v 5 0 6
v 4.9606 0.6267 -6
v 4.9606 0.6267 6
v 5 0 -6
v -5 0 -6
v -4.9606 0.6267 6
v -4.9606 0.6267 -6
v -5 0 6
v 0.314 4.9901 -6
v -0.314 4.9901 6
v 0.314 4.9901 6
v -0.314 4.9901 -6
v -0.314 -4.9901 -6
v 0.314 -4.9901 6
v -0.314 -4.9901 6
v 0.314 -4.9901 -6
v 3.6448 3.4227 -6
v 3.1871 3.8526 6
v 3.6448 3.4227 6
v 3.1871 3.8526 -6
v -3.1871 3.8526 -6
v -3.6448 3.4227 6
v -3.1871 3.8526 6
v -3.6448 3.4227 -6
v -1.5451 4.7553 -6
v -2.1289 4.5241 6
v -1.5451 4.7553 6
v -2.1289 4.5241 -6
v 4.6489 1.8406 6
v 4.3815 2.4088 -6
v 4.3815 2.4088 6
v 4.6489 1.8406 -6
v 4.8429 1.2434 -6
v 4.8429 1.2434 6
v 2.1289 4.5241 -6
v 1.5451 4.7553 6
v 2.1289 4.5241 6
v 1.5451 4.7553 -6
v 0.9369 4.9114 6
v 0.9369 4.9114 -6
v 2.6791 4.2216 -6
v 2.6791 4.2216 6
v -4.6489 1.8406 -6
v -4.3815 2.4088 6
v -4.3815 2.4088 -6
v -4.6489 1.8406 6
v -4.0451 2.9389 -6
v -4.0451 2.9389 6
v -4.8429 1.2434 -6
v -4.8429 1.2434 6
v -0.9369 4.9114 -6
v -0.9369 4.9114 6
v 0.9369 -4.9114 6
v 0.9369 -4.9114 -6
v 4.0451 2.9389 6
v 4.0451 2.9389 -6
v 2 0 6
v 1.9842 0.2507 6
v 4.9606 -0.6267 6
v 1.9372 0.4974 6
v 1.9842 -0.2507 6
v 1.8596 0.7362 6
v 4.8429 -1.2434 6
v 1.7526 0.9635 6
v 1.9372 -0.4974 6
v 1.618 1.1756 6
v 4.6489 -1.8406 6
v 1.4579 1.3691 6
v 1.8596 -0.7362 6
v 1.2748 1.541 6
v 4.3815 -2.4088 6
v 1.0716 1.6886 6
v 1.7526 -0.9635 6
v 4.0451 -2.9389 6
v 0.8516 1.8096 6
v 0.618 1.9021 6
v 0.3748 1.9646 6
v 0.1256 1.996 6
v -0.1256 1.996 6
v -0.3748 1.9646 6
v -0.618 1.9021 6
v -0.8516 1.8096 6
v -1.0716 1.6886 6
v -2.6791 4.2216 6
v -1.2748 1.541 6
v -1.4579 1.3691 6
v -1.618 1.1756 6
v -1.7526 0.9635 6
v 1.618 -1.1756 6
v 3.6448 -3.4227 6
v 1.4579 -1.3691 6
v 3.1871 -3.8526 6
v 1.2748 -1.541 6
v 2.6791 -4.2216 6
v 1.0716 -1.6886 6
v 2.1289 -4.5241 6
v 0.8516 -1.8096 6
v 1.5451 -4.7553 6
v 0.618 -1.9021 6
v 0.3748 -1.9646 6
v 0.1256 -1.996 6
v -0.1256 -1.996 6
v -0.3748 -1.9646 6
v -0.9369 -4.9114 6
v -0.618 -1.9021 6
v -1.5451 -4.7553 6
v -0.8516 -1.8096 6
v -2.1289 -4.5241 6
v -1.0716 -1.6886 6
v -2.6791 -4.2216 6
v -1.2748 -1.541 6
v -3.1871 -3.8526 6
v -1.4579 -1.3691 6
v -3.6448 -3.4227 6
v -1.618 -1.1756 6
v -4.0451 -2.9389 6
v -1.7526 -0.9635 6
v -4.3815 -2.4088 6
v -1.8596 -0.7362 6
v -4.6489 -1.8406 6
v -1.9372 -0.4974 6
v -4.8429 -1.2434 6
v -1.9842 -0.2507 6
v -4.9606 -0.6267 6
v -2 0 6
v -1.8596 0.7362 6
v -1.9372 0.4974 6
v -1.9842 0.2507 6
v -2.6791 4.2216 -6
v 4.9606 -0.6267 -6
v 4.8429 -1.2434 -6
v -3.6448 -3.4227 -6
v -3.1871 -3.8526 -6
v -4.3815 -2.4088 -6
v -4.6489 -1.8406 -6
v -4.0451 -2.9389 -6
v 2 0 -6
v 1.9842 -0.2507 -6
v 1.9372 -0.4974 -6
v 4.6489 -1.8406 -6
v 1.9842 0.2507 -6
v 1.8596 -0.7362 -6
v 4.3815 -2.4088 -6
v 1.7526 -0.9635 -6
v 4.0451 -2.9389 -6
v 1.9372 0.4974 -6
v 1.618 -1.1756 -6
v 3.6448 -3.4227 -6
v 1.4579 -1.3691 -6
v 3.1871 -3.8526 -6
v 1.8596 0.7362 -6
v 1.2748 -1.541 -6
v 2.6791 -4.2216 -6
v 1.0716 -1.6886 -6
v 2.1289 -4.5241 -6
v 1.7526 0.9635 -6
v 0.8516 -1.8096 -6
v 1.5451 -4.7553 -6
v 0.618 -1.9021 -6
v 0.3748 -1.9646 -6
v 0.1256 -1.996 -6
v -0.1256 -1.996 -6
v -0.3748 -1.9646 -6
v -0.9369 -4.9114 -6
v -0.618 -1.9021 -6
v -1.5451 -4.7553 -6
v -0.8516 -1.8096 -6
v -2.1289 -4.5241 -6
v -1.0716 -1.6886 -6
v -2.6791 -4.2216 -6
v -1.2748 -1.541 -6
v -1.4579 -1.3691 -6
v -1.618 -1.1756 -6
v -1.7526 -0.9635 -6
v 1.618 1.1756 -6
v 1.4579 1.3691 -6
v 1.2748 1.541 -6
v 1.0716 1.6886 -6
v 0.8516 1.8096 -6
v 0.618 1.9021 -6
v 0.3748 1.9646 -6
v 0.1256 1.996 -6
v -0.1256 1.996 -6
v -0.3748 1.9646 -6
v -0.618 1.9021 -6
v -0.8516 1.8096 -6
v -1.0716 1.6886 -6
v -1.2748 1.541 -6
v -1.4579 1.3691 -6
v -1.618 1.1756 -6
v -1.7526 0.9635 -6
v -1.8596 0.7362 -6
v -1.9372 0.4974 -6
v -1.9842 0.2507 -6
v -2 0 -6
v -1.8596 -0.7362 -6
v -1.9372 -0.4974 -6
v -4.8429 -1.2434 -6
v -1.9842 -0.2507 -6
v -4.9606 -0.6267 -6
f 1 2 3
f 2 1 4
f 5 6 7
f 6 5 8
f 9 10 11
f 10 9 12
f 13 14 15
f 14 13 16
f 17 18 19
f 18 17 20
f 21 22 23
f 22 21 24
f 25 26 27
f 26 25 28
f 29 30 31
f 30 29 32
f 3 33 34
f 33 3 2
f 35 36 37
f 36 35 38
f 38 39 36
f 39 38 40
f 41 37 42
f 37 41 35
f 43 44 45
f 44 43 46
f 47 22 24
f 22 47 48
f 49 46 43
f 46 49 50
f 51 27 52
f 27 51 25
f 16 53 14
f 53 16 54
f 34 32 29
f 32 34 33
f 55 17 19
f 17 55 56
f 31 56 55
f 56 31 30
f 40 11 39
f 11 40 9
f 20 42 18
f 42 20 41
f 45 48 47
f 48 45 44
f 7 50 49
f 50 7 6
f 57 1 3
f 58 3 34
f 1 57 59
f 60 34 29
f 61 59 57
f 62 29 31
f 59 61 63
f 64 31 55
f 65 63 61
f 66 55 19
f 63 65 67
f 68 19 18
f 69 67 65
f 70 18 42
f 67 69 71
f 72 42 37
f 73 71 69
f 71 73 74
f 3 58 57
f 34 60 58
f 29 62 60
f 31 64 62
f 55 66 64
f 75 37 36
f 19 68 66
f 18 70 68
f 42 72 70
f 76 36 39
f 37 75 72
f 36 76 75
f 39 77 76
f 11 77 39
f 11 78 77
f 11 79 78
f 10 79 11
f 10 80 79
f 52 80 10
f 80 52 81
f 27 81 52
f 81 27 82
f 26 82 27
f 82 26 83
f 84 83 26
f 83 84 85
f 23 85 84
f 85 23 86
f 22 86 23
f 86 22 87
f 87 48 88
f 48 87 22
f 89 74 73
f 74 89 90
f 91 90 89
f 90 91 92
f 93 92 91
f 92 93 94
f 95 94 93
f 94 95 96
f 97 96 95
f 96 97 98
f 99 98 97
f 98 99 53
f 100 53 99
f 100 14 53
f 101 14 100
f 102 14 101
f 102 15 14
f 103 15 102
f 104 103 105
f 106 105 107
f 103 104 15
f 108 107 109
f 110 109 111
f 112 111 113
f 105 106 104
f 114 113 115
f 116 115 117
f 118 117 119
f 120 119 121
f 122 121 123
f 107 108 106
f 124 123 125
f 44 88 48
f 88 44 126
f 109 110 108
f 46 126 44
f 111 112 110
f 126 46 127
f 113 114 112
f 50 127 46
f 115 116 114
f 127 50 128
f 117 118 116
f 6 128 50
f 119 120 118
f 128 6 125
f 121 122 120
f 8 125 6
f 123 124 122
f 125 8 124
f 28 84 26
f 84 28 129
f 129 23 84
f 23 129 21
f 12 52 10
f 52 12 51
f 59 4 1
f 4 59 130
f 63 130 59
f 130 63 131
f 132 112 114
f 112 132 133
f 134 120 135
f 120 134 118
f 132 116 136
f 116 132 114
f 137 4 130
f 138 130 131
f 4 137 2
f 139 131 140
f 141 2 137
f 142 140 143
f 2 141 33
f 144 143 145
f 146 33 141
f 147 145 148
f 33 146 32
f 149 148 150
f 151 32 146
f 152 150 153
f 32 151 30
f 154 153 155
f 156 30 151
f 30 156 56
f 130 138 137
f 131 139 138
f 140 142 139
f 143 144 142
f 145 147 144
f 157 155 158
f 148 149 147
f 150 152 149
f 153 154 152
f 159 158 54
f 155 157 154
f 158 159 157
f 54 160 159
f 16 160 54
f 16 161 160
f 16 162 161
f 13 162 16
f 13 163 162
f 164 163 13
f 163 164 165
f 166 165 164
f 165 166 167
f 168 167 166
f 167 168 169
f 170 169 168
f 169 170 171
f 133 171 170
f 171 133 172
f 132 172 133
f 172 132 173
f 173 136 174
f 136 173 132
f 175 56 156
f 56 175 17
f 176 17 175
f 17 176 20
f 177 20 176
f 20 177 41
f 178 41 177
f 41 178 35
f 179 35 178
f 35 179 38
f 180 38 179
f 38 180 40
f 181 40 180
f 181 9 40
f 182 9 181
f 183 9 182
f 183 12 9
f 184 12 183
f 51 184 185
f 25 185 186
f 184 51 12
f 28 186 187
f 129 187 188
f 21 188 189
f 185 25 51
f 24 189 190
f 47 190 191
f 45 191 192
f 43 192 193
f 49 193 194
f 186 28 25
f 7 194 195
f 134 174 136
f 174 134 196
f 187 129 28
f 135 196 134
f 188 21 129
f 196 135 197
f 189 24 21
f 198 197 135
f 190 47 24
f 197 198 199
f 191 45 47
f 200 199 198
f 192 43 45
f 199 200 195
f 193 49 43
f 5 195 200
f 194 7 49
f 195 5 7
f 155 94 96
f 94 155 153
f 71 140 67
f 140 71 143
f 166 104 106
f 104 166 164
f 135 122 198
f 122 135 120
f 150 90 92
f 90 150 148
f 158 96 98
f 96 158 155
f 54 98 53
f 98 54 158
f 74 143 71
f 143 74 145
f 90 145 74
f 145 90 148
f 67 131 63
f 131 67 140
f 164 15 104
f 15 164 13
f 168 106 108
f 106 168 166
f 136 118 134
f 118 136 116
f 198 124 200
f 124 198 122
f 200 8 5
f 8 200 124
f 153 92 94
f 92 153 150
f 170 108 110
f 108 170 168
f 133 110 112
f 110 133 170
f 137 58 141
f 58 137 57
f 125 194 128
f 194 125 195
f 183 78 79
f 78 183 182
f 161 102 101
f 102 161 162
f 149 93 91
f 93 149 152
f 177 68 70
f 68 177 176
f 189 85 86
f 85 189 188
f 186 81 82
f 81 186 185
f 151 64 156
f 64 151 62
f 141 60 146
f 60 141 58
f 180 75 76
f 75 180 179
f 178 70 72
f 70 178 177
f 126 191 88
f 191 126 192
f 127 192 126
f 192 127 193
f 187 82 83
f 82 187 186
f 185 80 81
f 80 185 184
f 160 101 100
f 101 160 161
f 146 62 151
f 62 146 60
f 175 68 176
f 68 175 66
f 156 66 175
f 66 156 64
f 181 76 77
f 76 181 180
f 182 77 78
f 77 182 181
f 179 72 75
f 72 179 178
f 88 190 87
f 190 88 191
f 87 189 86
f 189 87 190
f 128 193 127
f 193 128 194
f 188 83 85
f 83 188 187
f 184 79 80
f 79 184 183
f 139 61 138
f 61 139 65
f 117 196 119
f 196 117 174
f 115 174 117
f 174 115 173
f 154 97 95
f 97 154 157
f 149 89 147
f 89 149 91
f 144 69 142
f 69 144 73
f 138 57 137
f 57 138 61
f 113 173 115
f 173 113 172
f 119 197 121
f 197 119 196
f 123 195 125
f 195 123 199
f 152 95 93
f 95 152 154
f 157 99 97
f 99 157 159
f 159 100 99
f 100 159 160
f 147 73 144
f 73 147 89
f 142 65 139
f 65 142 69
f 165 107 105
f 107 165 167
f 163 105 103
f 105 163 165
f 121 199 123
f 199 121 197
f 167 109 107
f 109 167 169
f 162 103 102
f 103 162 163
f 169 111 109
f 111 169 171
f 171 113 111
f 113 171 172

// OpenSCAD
$fn = 50;


difference() {
	union() {
		translate(v = [0, 0, -6.0000000000]) {
			cylinder(h = 12, r = 5.0000000000);
		}
	}
	union() {
		translate(v = [0, 0, -100.0000000000]) {
			cylinder(h = 200, r = 2);
		}
	}
}
